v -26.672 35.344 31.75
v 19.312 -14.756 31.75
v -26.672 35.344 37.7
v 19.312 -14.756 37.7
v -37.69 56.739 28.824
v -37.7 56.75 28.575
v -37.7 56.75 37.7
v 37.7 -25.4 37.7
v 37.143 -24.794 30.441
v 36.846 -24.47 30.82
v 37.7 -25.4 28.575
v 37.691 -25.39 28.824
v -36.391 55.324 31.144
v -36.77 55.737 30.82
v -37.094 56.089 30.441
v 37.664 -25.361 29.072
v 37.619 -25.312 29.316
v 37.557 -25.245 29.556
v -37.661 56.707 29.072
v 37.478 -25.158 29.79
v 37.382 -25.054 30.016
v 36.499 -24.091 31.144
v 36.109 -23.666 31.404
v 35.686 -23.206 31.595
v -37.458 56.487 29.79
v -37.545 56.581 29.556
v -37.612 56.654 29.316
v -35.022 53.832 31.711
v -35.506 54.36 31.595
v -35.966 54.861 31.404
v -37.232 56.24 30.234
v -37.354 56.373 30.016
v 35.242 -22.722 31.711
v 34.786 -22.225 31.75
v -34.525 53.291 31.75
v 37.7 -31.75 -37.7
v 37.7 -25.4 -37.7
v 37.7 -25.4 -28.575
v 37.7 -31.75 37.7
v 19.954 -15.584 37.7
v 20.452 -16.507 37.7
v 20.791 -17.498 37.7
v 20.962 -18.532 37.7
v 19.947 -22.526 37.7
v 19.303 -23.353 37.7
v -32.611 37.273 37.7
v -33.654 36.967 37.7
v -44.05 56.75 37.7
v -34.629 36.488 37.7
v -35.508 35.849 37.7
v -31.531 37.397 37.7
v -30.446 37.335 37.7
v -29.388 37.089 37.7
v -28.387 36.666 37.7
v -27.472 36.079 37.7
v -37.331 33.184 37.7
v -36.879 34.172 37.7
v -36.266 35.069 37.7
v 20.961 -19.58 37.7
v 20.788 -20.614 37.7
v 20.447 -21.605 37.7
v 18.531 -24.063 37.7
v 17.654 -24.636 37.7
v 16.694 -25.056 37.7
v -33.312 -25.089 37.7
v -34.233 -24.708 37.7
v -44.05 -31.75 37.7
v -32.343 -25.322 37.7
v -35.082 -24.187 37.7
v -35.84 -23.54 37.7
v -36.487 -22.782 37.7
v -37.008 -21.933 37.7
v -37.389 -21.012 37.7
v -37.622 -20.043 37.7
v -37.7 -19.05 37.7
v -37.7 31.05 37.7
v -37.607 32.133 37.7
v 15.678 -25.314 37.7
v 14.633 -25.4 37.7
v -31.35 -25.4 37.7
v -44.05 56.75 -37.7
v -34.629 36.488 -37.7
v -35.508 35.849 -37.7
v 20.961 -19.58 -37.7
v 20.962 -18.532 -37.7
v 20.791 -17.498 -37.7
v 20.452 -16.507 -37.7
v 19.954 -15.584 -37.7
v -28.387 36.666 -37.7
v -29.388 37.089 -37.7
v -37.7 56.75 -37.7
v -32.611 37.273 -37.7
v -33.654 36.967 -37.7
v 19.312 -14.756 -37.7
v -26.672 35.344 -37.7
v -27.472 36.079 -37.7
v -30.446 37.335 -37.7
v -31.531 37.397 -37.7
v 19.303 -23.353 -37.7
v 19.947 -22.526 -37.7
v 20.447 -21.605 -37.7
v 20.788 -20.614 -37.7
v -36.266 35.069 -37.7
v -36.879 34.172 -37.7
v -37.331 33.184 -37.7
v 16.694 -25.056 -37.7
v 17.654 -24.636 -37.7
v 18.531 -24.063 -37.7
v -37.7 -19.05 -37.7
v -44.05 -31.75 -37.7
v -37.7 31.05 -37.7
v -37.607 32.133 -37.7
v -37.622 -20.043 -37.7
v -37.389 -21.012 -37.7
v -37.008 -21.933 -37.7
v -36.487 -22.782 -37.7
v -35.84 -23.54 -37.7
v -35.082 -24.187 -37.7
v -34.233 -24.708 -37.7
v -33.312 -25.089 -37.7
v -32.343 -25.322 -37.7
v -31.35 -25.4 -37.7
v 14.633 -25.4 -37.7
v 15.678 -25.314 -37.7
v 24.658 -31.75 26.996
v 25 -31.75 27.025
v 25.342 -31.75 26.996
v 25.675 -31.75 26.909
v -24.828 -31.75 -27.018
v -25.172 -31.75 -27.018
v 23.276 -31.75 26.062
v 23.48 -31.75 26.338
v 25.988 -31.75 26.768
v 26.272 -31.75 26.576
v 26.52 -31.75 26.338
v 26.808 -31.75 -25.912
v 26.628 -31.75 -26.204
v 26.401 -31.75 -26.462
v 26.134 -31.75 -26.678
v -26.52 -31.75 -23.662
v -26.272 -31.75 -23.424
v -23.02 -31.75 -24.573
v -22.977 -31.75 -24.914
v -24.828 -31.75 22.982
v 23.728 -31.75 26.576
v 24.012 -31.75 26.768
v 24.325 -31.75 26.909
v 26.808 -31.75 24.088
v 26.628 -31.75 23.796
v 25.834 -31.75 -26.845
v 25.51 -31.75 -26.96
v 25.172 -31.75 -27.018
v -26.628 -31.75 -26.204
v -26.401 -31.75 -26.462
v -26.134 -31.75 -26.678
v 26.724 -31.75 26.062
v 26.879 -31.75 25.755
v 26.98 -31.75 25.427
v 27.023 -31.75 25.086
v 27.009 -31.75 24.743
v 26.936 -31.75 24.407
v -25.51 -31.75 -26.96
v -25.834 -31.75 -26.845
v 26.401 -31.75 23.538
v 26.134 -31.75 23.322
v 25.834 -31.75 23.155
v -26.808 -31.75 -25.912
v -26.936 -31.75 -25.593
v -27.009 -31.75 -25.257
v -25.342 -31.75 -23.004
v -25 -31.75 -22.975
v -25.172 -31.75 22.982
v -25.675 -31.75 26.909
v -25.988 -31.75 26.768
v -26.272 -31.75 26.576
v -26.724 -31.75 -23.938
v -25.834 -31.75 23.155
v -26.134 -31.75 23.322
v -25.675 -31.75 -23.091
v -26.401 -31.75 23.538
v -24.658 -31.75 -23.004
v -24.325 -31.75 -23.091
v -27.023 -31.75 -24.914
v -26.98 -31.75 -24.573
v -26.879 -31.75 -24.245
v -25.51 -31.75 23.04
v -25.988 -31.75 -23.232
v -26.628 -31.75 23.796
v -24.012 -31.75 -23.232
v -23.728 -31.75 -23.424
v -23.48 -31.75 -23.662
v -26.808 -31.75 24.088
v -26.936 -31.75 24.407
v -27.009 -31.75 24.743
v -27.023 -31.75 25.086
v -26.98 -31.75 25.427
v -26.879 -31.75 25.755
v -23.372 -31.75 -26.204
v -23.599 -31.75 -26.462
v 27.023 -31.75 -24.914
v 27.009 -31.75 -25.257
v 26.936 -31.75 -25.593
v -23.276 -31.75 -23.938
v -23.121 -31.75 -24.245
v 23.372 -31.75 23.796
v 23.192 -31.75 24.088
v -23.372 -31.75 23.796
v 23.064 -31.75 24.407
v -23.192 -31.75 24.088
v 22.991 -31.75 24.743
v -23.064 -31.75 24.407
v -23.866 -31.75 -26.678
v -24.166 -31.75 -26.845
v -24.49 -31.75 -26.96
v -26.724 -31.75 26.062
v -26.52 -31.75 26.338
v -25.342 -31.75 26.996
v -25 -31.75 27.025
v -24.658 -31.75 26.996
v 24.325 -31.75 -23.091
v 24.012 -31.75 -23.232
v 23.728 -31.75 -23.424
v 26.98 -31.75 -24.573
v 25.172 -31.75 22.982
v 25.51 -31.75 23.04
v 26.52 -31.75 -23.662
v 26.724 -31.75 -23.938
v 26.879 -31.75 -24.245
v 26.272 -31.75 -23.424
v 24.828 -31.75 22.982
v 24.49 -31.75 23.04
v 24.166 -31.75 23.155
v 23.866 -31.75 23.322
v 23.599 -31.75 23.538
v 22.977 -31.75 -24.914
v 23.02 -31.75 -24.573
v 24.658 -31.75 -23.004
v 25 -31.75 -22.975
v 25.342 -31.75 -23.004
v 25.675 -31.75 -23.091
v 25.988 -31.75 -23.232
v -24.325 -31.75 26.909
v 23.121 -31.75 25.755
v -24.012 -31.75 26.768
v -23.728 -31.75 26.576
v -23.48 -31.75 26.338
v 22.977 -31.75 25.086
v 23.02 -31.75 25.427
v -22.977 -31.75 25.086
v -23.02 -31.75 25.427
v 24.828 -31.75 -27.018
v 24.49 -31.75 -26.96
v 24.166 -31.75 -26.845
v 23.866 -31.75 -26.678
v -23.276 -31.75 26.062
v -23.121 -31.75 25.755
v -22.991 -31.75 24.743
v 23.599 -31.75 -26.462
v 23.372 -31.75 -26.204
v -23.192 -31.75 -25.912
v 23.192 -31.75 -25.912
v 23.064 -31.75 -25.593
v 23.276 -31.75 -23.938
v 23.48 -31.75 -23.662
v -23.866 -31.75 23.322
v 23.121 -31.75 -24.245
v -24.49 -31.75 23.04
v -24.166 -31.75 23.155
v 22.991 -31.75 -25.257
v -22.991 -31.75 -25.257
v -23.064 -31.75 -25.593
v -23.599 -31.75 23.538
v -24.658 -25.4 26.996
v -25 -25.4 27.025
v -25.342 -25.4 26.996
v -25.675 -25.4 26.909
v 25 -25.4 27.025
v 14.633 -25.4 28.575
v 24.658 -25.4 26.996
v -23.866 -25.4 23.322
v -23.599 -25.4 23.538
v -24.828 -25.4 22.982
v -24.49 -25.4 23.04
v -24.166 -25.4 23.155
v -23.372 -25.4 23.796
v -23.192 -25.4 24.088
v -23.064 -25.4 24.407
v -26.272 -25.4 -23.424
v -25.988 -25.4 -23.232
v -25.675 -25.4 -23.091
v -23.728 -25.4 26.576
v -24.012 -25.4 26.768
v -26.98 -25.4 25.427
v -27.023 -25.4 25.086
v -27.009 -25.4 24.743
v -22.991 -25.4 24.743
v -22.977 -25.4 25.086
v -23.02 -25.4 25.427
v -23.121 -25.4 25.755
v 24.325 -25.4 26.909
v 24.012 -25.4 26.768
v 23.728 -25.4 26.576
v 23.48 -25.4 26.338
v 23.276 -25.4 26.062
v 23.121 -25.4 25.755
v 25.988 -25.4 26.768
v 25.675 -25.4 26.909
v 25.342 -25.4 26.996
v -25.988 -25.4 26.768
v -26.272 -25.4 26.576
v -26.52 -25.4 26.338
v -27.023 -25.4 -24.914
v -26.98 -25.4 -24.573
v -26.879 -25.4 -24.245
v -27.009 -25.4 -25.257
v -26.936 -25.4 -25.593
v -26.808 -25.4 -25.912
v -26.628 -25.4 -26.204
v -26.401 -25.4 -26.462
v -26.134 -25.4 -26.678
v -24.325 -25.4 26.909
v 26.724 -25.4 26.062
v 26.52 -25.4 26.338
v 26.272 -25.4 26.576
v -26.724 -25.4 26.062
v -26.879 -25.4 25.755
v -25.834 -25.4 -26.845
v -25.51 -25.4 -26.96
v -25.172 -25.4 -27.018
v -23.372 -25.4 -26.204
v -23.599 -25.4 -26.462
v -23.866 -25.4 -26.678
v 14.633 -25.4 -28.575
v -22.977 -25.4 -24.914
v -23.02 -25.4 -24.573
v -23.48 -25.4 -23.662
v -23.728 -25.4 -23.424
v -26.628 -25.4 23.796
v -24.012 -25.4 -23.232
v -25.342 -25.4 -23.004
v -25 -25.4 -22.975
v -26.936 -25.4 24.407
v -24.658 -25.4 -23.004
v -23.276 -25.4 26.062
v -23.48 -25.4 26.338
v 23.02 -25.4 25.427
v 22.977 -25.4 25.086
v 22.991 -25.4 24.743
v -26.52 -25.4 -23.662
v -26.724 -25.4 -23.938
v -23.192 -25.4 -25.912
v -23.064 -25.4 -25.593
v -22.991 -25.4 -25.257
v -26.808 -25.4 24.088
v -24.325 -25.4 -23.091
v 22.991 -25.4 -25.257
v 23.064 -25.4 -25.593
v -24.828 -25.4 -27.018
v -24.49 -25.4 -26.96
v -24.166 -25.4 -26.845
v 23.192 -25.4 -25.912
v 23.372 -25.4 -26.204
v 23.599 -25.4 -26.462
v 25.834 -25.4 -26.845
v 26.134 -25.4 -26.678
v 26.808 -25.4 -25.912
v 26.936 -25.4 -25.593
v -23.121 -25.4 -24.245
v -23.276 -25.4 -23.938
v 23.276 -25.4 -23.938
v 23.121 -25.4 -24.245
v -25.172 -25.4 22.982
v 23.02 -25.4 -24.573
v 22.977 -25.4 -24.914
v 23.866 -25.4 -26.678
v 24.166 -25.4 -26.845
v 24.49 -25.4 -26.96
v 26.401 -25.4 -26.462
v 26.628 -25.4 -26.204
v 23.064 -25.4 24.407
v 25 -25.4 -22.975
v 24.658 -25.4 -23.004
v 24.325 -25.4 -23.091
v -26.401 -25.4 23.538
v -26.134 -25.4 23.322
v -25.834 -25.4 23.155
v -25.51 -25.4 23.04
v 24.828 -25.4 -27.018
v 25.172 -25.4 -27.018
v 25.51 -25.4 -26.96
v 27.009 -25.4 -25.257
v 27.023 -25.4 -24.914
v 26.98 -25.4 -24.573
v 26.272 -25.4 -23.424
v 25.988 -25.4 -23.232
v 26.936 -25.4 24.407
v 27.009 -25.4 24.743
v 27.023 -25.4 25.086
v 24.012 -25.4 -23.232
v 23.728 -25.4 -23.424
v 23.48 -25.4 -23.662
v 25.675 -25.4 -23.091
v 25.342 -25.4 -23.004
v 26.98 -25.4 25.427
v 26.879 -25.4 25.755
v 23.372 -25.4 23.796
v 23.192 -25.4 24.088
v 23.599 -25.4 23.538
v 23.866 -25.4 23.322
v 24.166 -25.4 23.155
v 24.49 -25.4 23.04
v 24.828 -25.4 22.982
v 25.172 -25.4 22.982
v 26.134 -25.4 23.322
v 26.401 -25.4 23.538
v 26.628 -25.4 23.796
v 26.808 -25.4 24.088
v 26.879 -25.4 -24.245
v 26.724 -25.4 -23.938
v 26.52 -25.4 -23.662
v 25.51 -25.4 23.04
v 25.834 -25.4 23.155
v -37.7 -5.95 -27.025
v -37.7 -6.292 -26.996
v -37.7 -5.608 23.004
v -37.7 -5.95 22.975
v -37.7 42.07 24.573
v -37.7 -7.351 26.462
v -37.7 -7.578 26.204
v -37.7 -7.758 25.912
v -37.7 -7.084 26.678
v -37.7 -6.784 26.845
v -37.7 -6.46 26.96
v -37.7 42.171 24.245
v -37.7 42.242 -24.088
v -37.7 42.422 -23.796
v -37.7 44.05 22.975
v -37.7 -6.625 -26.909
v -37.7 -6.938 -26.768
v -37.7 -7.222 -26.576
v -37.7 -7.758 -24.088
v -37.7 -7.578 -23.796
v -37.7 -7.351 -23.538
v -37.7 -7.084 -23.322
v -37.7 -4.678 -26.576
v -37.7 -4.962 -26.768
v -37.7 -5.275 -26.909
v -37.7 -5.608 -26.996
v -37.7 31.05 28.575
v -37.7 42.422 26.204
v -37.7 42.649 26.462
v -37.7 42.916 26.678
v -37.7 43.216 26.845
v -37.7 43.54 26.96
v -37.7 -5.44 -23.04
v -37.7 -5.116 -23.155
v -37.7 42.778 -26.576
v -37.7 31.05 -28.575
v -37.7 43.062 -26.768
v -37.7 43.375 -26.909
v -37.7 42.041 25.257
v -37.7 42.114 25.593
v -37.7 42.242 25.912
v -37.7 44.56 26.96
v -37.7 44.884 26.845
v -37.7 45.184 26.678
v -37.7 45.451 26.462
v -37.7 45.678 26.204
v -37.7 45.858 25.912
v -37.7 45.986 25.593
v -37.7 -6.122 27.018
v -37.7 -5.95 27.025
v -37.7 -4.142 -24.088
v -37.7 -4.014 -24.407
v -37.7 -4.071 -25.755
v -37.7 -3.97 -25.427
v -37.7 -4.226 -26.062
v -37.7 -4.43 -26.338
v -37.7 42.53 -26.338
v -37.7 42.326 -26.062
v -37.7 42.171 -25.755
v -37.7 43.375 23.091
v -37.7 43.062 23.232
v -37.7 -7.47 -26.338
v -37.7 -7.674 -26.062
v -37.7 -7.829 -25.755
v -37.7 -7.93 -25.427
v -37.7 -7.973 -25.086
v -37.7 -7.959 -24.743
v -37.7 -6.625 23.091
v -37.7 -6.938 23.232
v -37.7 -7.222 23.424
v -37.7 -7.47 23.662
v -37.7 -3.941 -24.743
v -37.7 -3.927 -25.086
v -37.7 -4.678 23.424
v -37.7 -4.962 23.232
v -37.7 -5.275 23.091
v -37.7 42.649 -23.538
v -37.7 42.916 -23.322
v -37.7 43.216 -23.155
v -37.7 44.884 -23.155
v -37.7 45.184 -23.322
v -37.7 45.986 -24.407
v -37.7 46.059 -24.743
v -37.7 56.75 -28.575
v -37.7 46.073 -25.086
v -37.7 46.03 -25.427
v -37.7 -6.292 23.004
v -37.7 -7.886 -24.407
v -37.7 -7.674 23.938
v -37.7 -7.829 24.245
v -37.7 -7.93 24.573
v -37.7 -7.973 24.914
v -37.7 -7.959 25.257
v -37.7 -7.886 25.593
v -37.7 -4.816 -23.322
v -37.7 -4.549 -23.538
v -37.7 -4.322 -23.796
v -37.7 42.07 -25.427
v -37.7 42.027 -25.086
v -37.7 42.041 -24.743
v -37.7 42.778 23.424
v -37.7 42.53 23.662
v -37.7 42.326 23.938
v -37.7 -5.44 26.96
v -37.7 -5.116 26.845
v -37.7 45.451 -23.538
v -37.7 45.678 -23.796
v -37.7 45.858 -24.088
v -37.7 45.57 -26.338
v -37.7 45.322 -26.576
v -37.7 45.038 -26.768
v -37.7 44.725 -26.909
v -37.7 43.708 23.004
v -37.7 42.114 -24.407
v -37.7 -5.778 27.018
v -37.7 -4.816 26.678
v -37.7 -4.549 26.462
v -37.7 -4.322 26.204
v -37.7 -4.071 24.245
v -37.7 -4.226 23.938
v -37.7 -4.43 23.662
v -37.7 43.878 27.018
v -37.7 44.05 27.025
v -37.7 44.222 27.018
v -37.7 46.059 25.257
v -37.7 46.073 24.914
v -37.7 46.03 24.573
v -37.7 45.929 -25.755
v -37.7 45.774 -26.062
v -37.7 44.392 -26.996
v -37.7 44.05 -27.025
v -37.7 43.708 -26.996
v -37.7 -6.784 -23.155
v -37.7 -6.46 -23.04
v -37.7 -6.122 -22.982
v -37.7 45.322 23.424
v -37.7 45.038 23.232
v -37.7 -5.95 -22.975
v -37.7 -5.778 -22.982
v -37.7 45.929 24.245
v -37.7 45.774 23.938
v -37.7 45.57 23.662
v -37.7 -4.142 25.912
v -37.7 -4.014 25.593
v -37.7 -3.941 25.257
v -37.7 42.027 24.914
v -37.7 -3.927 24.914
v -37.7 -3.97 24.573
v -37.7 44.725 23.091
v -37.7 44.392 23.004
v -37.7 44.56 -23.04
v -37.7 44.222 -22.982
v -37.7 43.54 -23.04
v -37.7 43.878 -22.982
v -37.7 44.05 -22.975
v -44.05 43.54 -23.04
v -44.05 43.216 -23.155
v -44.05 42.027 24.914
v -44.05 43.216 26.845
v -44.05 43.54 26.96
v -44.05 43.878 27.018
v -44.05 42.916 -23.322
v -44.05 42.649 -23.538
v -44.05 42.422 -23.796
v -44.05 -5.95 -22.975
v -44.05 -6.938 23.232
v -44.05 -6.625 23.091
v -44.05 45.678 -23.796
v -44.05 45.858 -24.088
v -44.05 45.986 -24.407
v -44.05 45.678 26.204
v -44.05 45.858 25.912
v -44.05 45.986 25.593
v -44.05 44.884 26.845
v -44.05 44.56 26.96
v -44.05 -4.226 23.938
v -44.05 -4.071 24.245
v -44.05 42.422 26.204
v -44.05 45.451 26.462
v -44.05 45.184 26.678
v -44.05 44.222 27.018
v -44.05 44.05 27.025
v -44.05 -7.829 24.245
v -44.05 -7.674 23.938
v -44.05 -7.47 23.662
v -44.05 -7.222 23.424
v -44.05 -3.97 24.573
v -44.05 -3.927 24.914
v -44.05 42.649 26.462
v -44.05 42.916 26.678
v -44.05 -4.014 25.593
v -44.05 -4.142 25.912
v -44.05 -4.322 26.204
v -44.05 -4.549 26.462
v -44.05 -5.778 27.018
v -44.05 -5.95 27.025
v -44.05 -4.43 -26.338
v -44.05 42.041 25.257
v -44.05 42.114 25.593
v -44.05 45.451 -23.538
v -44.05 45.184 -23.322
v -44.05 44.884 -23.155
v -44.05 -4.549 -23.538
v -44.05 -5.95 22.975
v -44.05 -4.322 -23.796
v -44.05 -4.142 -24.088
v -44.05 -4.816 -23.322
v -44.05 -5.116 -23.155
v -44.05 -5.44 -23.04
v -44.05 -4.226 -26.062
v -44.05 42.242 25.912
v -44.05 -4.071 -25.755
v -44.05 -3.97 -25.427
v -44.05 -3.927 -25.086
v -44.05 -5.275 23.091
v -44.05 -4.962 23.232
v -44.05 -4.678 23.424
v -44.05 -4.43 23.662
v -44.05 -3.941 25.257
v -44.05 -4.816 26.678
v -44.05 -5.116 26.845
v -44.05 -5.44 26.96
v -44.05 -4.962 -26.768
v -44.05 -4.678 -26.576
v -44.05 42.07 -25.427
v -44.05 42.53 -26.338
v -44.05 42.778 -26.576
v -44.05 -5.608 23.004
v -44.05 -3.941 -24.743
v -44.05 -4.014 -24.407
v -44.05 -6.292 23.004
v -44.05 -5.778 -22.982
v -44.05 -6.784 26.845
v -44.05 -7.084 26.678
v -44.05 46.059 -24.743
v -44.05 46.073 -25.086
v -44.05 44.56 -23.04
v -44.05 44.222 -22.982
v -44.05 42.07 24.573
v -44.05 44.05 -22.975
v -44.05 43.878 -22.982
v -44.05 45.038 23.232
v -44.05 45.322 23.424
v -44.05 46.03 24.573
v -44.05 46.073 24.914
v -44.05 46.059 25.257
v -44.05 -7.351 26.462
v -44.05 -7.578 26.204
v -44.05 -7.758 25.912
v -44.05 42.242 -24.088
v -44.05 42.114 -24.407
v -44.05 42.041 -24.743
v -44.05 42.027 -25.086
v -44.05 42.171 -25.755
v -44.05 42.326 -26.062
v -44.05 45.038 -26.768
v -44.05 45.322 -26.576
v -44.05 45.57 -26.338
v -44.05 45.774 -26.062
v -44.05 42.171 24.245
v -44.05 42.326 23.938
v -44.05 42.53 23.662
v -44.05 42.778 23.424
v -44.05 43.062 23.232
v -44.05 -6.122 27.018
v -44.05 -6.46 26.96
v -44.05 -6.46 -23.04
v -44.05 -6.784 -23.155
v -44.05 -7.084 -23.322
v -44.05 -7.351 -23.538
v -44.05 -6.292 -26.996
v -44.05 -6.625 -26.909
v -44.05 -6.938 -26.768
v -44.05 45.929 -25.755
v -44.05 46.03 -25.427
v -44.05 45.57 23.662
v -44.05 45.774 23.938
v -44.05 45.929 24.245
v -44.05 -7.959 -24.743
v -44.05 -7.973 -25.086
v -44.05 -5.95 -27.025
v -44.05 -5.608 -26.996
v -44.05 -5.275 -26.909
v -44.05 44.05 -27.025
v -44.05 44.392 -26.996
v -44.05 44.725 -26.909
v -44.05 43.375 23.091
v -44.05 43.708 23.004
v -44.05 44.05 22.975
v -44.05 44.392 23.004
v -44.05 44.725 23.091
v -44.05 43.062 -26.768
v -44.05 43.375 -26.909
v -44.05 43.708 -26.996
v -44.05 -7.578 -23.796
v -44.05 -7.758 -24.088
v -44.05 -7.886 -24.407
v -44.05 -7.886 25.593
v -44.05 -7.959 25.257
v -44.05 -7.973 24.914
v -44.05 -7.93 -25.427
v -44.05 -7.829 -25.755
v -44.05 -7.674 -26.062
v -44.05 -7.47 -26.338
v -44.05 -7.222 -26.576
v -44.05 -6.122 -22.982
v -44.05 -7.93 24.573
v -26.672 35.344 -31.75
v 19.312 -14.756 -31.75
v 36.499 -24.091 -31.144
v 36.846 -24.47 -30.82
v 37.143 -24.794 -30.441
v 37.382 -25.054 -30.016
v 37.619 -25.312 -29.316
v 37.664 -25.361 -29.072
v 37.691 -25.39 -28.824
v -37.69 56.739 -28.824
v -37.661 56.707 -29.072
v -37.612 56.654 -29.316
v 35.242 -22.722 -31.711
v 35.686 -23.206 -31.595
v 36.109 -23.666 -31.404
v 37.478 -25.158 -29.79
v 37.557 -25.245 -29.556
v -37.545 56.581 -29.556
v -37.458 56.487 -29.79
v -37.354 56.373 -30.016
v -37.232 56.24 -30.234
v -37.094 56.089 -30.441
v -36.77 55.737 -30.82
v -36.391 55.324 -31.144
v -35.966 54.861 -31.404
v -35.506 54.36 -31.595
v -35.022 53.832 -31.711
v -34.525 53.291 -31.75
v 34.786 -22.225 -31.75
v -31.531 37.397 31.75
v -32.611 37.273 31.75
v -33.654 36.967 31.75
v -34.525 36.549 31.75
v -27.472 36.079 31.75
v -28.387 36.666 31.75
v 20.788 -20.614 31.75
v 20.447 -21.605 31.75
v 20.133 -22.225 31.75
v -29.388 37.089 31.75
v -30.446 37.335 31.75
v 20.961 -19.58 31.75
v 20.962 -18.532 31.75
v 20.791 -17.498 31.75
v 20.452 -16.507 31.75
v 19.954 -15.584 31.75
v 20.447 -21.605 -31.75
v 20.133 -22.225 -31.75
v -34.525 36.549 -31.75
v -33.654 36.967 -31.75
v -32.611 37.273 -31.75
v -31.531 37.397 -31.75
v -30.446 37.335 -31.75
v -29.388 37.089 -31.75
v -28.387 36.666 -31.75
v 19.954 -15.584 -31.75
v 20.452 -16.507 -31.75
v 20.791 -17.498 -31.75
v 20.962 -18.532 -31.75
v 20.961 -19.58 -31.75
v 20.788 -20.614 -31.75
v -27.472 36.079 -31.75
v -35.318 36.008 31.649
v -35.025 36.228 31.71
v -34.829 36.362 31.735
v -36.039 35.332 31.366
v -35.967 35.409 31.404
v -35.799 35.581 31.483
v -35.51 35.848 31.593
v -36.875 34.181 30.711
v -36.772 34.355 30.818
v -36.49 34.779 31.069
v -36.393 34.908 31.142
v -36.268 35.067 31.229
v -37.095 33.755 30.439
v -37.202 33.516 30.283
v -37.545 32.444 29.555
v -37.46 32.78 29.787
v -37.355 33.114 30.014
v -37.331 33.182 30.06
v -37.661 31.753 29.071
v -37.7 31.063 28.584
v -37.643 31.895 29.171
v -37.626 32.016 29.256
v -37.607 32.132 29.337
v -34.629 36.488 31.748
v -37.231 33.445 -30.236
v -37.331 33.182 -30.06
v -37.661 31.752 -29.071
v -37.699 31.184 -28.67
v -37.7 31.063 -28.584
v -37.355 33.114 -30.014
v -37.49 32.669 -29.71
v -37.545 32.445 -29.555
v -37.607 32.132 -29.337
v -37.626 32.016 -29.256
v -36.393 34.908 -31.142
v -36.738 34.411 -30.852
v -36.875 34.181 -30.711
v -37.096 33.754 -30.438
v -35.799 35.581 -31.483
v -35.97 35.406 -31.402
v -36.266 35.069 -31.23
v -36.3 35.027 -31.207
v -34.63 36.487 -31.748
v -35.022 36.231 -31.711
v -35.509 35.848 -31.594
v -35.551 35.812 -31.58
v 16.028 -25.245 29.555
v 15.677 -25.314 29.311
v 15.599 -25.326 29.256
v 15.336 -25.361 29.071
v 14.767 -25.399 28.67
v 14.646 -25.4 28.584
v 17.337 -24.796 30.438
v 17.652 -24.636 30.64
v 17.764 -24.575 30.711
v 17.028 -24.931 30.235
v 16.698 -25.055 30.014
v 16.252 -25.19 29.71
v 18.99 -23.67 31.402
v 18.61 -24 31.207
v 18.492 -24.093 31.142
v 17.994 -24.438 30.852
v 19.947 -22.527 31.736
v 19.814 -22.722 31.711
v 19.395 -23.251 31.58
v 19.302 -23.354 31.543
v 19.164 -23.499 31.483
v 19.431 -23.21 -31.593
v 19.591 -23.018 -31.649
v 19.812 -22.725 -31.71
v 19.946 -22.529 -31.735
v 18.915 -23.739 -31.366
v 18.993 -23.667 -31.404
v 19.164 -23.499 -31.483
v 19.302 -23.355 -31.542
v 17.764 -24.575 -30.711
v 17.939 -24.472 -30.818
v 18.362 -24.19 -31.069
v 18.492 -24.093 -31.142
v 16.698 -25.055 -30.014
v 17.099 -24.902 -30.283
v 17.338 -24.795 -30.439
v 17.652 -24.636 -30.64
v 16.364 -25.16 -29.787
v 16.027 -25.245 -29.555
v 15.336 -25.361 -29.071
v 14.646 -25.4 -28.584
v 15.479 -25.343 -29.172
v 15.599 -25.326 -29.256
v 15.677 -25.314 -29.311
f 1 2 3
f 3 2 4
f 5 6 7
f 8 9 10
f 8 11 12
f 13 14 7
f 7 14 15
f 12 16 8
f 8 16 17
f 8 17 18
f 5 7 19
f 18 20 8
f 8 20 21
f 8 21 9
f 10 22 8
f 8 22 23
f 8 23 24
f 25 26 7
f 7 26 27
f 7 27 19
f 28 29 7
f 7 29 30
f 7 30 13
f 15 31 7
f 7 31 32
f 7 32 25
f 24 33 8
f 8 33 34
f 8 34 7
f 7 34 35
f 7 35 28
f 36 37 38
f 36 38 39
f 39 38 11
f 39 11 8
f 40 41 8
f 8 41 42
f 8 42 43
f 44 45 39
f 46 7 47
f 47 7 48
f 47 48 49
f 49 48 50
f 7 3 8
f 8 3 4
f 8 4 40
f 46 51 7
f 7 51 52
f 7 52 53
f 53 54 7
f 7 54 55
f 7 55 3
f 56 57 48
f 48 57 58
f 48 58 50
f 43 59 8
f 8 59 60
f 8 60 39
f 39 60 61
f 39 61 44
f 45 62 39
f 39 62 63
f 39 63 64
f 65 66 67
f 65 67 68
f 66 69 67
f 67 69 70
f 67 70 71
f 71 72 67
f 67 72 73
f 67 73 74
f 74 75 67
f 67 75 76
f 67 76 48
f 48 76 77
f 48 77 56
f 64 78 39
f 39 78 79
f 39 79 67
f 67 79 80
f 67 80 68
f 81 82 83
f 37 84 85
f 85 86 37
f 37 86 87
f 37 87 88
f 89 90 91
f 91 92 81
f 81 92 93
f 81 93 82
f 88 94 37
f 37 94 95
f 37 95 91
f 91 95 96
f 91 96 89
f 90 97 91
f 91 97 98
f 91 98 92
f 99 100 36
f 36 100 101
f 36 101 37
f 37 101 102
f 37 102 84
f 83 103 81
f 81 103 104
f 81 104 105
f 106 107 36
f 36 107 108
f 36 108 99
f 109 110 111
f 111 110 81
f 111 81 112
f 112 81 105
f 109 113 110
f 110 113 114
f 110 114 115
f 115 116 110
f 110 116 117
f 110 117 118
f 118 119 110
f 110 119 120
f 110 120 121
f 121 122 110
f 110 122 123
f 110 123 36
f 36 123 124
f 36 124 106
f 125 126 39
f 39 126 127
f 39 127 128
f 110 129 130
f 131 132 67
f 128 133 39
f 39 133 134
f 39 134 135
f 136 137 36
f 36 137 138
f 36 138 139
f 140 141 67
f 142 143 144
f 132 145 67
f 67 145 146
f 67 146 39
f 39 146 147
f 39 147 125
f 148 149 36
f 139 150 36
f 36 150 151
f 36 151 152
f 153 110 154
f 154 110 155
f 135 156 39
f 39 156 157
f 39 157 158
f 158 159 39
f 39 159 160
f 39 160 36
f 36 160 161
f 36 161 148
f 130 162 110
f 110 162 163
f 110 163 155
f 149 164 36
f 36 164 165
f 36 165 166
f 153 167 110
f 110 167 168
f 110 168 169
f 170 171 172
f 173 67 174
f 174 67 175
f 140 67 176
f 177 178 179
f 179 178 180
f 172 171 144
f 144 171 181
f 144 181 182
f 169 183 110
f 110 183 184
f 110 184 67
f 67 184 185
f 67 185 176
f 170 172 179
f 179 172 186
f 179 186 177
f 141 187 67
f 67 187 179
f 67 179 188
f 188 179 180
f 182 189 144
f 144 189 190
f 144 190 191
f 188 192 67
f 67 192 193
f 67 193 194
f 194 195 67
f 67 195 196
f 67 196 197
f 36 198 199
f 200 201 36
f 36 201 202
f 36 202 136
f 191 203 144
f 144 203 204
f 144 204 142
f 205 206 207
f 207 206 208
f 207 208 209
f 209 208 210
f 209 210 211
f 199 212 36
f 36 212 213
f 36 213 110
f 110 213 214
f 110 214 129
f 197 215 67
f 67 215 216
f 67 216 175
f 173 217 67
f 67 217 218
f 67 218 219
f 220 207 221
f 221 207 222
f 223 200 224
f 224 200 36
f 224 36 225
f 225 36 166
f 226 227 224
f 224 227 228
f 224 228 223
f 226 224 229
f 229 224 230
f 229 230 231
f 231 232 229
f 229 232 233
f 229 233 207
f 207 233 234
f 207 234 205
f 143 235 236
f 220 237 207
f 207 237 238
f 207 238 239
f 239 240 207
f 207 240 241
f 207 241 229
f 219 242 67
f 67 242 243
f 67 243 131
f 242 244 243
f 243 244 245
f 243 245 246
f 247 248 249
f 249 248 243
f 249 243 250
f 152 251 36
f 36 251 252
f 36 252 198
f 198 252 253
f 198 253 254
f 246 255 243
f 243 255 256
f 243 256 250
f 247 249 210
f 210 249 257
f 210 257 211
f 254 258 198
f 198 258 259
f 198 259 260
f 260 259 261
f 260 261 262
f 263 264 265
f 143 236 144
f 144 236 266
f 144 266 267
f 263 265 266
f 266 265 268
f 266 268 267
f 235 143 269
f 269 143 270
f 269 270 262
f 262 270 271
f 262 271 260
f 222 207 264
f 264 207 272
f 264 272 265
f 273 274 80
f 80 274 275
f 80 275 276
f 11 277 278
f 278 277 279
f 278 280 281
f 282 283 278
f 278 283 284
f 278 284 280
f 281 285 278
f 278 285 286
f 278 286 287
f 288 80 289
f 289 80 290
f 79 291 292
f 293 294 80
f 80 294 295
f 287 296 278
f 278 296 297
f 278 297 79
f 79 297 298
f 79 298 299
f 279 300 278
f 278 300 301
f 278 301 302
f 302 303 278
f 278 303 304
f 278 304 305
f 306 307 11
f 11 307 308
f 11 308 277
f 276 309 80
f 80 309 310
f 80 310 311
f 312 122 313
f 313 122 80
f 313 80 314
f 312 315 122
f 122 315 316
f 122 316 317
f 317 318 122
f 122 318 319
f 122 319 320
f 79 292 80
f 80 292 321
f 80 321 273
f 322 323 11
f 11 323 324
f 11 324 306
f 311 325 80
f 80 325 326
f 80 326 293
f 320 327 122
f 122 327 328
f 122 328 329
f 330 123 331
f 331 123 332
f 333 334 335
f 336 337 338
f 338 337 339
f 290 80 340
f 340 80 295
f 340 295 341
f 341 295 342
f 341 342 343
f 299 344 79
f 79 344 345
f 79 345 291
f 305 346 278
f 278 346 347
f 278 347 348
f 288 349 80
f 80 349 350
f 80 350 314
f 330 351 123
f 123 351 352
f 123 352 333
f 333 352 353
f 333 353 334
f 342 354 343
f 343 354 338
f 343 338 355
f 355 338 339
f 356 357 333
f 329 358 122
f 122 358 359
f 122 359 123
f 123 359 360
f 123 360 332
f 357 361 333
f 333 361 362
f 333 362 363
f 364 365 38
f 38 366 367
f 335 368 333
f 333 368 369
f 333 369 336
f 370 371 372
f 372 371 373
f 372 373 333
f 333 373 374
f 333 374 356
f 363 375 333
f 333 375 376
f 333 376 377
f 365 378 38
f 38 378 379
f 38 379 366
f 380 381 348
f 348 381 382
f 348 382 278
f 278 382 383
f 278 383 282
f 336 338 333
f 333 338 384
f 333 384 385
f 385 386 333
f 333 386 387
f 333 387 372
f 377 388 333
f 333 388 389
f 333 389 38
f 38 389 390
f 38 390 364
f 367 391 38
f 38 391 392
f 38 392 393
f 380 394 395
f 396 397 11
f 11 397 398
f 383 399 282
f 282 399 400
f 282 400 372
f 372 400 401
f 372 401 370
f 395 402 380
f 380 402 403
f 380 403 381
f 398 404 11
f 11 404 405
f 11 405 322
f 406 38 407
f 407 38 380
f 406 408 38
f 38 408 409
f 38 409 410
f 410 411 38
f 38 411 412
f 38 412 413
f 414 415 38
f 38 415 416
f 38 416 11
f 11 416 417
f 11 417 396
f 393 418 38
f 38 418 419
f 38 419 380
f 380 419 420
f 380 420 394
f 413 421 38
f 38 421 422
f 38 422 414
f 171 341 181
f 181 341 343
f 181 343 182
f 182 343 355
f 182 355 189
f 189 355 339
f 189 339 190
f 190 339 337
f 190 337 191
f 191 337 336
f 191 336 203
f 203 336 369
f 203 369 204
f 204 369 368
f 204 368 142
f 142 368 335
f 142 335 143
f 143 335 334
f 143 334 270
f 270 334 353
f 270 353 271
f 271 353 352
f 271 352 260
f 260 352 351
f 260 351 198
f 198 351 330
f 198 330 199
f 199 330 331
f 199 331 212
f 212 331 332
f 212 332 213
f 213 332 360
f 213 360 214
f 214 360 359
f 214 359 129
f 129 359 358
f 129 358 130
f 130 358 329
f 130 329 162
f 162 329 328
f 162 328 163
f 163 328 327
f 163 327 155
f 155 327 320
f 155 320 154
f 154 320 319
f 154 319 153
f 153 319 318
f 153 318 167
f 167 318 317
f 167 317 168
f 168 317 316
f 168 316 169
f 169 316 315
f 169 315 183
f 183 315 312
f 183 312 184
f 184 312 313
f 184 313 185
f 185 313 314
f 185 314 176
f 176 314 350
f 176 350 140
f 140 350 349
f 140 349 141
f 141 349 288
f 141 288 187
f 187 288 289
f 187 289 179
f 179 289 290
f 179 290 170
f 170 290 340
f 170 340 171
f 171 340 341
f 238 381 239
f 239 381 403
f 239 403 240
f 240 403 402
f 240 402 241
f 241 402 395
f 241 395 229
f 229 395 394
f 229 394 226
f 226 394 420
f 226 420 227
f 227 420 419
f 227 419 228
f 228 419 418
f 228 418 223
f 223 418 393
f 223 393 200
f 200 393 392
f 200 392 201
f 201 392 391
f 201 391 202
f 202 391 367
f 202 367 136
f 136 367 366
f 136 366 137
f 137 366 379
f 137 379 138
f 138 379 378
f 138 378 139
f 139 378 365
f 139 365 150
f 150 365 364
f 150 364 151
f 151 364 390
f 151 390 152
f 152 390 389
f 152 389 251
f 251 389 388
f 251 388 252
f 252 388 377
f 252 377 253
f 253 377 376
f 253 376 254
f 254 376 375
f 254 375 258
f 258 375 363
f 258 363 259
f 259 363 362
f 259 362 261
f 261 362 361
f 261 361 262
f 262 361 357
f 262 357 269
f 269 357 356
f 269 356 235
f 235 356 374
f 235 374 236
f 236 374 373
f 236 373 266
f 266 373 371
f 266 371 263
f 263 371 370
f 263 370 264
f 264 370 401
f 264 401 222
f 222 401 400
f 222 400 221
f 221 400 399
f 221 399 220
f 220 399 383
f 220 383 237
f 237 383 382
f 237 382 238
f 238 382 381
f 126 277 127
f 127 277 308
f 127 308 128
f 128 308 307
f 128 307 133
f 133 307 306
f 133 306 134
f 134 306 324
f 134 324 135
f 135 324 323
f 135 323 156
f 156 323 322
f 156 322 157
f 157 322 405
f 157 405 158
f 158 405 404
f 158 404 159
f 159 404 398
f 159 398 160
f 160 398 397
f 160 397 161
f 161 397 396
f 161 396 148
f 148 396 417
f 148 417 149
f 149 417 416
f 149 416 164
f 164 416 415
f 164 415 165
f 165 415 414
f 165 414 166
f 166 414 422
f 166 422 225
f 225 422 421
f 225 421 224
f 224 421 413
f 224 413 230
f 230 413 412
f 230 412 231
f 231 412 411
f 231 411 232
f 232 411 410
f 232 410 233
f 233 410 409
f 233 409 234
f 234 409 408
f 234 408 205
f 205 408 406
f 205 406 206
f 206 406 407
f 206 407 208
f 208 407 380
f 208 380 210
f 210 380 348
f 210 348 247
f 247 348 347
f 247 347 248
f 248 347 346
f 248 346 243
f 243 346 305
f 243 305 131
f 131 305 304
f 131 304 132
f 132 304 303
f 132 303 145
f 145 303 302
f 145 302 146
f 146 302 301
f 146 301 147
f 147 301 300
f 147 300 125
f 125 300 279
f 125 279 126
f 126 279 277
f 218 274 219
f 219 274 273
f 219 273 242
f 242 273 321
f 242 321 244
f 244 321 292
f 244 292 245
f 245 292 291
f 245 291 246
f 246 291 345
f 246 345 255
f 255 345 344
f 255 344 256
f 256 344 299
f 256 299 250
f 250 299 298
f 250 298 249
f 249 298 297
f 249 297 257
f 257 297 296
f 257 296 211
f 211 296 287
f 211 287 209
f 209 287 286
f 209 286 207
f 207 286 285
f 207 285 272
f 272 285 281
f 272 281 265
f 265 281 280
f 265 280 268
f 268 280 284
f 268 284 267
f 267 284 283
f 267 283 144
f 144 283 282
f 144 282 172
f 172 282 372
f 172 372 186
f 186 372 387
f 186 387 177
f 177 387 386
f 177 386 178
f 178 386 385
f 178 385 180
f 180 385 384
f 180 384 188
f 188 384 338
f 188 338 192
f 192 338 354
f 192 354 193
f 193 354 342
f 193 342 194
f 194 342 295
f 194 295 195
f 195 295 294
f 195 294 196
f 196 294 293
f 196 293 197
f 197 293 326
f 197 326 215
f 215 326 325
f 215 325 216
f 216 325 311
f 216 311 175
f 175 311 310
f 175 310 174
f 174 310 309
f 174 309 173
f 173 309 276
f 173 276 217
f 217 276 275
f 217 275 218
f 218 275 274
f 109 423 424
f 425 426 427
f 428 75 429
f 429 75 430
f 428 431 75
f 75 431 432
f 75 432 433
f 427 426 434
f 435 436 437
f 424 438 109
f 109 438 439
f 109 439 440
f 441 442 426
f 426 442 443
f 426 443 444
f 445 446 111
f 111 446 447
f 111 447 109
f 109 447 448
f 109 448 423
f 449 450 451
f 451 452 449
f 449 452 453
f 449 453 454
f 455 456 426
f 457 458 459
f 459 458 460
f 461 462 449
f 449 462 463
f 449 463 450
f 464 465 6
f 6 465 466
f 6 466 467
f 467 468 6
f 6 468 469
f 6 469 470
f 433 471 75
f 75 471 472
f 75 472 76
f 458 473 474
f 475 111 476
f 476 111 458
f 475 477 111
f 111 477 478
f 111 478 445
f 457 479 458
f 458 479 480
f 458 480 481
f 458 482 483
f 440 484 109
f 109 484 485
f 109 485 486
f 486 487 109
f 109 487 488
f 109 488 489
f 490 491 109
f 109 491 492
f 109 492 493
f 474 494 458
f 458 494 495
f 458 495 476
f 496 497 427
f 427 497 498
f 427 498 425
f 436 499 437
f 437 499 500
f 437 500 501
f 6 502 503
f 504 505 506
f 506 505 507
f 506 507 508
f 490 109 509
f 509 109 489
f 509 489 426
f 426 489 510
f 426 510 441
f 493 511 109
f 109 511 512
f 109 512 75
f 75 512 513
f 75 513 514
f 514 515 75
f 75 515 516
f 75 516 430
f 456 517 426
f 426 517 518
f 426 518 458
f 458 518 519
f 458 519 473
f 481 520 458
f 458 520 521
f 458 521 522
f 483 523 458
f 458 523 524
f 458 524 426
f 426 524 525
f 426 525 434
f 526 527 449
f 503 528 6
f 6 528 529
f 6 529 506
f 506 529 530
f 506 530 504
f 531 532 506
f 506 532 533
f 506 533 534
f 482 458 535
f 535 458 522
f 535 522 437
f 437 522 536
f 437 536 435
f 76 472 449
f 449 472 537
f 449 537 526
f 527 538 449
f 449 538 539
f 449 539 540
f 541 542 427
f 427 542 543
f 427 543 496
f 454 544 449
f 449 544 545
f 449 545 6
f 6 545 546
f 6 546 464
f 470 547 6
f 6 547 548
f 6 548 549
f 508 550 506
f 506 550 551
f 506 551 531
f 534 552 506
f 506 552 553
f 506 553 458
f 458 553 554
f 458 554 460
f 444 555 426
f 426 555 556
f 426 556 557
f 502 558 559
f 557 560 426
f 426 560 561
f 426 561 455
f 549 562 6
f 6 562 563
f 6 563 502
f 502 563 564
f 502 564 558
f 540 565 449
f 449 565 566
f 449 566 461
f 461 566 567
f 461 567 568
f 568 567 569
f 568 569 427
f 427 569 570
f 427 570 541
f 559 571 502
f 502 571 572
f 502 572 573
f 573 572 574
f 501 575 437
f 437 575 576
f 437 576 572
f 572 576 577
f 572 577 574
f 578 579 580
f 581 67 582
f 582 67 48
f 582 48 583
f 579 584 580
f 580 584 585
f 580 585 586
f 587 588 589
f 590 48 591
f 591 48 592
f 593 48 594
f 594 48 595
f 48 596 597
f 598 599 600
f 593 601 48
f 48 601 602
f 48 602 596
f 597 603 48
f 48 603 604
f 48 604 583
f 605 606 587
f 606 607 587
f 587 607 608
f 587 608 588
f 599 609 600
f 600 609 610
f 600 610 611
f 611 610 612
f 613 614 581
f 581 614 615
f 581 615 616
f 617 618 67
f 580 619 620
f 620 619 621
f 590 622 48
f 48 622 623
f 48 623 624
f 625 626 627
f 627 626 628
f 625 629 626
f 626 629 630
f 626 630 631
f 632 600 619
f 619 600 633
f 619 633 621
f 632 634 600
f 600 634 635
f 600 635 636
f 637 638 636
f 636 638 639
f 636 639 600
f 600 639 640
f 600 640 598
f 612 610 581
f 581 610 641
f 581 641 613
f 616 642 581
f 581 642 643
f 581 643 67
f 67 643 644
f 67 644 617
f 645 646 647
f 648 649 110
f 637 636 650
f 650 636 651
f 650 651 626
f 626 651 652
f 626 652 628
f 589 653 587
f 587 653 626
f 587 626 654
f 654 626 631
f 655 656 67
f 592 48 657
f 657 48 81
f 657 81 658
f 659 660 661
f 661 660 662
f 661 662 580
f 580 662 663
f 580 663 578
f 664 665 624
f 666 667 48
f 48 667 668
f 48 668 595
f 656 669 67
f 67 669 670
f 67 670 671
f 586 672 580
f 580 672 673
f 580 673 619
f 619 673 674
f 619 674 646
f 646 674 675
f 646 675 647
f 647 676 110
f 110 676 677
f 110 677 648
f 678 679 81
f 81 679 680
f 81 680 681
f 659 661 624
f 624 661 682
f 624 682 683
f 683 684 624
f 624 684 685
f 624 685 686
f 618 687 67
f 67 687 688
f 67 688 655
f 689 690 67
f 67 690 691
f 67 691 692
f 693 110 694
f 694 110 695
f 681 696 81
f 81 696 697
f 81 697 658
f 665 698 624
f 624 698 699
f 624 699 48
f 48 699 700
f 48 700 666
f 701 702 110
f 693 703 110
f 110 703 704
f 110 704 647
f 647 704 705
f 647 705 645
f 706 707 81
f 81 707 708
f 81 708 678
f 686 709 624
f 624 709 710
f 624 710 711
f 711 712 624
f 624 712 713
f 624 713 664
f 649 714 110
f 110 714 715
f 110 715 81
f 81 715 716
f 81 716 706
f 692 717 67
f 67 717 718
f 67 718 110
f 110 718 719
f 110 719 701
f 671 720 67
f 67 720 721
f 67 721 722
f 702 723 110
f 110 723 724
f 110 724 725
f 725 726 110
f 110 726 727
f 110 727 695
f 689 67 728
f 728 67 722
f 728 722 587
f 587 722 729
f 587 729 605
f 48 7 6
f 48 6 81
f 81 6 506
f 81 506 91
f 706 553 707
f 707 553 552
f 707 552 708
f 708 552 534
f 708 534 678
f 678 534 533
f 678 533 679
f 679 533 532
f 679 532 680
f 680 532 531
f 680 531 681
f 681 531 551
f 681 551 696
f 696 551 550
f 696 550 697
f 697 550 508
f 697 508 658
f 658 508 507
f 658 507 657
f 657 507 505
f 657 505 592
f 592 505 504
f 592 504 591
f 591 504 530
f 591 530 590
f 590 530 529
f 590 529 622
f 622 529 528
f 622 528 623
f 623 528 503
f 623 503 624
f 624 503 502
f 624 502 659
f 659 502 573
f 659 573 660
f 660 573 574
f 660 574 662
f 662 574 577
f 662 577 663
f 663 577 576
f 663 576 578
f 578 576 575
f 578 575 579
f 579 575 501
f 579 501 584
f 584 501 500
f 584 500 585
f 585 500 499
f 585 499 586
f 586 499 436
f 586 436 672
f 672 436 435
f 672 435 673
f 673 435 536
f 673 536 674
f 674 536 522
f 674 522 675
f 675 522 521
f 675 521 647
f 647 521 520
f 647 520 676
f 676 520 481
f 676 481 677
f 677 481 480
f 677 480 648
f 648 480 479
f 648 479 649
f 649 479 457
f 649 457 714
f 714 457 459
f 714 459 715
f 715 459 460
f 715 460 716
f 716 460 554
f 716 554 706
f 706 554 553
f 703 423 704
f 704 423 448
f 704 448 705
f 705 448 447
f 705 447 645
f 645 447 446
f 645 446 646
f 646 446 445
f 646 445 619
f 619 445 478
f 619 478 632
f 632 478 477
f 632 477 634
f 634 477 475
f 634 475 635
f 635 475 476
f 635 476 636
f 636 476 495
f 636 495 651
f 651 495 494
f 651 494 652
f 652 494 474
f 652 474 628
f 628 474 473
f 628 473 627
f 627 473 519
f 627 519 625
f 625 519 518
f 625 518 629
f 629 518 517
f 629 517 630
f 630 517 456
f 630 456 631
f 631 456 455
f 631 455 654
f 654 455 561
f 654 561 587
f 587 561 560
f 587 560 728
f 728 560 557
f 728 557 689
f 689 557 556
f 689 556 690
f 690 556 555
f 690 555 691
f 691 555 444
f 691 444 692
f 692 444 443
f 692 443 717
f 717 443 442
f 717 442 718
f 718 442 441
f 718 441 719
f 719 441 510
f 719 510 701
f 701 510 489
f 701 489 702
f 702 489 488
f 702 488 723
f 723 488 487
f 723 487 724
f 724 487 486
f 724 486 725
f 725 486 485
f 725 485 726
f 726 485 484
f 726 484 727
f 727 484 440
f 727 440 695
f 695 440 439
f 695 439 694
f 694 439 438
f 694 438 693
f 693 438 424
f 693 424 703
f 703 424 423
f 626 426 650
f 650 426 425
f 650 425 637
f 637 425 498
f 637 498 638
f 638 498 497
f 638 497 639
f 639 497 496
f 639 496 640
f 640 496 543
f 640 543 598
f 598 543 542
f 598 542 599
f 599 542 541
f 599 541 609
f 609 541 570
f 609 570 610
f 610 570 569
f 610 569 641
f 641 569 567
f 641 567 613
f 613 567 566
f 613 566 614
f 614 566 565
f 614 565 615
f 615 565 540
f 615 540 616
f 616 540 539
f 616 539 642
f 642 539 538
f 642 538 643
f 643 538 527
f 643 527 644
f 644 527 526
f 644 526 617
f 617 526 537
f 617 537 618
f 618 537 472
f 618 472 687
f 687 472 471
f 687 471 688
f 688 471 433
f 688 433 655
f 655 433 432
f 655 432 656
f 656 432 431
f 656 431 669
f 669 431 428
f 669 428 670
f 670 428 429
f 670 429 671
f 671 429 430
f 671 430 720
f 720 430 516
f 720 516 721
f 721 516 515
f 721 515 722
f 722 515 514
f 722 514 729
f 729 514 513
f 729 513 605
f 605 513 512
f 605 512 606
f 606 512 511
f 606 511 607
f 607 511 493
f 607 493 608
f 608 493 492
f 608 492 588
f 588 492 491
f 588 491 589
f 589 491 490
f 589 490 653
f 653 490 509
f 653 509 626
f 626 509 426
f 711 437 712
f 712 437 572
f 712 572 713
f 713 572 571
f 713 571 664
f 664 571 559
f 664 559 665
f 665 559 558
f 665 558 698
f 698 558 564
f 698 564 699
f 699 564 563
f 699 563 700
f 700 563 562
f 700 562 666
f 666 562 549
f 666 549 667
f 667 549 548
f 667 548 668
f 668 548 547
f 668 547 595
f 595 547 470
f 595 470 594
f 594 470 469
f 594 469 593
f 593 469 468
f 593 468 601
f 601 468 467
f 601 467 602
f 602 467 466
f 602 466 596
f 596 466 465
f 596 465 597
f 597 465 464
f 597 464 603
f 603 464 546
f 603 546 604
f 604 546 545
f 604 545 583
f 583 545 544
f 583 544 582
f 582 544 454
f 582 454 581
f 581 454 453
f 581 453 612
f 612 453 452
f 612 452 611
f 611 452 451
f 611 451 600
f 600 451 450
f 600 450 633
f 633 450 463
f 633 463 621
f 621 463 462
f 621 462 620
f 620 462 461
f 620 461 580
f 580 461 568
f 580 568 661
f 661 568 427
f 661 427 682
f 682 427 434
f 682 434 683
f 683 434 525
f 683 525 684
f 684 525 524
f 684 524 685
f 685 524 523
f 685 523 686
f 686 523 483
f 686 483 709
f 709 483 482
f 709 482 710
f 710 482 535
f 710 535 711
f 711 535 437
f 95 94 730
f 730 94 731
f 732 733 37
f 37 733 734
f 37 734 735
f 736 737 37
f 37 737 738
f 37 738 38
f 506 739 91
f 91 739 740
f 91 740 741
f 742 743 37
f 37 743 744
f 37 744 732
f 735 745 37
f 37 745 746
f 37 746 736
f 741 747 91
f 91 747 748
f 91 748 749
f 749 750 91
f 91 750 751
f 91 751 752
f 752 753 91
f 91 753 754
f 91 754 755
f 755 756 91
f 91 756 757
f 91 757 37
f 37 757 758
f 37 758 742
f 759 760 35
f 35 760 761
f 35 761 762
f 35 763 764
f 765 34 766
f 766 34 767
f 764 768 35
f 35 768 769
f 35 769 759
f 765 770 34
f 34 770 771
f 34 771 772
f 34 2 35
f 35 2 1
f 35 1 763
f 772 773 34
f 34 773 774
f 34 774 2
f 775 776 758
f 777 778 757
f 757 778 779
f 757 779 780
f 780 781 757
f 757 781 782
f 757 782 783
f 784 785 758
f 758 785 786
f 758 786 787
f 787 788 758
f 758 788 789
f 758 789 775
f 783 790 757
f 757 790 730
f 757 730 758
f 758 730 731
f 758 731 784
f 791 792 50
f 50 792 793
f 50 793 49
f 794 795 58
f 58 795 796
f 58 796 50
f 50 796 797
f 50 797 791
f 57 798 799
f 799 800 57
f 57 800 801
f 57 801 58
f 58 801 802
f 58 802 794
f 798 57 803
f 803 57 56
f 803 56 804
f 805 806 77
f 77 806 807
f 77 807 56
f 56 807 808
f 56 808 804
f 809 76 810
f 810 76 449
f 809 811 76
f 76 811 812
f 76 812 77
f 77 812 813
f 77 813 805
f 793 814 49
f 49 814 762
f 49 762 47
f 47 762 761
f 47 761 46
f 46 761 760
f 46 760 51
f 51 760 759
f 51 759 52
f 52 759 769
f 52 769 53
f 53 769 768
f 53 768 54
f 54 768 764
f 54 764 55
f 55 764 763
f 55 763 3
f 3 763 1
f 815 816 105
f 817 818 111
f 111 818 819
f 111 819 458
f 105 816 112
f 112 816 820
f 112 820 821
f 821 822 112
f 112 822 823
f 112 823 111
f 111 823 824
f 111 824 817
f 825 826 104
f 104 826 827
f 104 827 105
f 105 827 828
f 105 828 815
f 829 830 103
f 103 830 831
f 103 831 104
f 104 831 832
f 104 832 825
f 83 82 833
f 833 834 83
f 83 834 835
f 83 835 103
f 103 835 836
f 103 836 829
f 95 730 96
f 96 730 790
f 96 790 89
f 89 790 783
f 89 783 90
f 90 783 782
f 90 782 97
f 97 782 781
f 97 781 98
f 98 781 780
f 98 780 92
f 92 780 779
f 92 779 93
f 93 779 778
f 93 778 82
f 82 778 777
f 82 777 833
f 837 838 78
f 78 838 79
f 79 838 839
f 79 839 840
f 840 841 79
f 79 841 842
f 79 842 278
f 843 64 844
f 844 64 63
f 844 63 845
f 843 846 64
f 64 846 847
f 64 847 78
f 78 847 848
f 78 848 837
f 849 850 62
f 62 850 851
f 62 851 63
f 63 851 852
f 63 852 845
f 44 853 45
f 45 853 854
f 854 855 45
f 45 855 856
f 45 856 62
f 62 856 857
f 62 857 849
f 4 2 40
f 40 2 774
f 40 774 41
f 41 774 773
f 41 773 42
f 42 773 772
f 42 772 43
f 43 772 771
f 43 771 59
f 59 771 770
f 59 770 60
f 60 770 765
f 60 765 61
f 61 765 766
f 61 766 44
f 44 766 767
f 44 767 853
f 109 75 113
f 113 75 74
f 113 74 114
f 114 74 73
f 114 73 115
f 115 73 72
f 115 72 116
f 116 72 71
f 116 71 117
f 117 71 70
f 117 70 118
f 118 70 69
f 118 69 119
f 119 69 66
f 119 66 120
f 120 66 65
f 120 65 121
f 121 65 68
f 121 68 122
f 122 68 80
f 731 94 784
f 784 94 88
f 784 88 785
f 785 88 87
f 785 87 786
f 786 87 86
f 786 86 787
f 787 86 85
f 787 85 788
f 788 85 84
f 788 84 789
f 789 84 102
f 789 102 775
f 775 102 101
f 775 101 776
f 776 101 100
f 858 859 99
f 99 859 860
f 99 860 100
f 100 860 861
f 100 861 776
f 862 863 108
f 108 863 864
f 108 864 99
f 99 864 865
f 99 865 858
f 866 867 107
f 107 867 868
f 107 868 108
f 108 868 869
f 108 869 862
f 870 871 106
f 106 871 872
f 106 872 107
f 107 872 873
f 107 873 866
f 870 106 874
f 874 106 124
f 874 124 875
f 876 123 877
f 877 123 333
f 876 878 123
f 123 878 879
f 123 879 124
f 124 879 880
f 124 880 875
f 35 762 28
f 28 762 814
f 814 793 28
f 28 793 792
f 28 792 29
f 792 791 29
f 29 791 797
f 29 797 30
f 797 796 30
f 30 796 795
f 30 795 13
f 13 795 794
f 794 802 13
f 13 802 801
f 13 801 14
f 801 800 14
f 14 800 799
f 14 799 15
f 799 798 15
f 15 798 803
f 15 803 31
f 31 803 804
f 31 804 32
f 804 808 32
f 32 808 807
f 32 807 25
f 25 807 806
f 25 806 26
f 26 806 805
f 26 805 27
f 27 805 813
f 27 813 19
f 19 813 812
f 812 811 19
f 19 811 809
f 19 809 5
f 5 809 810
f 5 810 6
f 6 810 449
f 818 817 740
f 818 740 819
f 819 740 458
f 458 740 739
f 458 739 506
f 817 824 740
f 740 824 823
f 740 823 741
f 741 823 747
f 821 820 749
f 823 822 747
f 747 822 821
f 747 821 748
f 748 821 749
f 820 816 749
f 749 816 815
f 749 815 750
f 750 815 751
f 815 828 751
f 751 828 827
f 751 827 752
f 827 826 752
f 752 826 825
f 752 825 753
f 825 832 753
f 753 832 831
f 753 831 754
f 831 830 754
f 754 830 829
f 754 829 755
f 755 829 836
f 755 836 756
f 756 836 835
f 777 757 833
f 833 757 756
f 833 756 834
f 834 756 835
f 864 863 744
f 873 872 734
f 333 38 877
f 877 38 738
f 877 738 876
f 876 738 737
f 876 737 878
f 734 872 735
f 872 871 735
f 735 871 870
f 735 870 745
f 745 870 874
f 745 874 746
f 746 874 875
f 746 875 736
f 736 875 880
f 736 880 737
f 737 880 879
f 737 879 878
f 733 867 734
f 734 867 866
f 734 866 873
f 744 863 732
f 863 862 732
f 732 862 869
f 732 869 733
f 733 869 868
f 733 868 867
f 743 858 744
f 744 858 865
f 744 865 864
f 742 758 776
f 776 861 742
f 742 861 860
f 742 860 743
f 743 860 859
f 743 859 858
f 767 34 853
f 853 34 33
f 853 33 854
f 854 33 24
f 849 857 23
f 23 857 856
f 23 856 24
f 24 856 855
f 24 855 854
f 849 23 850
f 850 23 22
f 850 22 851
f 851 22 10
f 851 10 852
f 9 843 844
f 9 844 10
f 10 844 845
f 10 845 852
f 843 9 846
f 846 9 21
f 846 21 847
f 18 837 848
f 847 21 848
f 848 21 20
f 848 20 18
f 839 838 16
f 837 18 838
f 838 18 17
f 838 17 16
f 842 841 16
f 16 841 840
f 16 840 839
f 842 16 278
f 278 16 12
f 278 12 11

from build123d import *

# Parameters (mm, degrees)
BOSS_EXTRUDE1_START = -25.4
SKETCH1_W           = 75.4
SKETCH1_H           = 75.4
SKETCH1_R           = 2.025
BOSS_EXTRUDE1_DEPTH = 6.35
SKETCH2_W           = 75.4
SKETCH2_H           = 88.5
SKETCH2_R           = 2.025
BOSS_EXTRUDE2_DEPTH = 6.35
BOSS_EXTRUDE3_START = -37.7
BOSS_EXTRUDE3_DEPTH = 75.4
CUT_EXTRUDE1_DEPTH  = 31.75
FILLET3_R           = 6.35
FILLET4_R           = 3.175


with BuildPart() as part:
    # Sketch1 → Boss-Extrude1 (new body)
    with BuildSketch(Plane(origin=(0, 0, 0), x_dir=(1, 0, 0), z_dir=(0, 1, 0)).offset(BOSS_EXTRUDE1_START)):
        Rectangle(SKETCH1_W, SKETCH1_H)
        with Locations((-25, 25)):
            Circle(SKETCH1_R, mode=Mode.SUBTRACT)
        with Locations((25, 25)):
            Circle(SKETCH1_R, mode=Mode.SUBTRACT)
        with Locations((25, -25)):
            Circle(SKETCH1_R, mode=Mode.SUBTRACT)
        with Locations((-25, -25)):
            Circle(SKETCH1_R, mode=Mode.SUBTRACT)
    extrude(amount=-BOSS_EXTRUDE1_DEPTH)

    # Sketch2 → Boss-Extrude2 (add)
    with BuildSketch(Plane.ZY.offset(37.7)):
        with Locations((0, 12.5)):
            Rectangle(SKETCH2_W, SKETCH2_H)
        with Locations((-25, 44.05)):
            Circle(SKETCH2_R, mode=Mode.SUBTRACT)
        with Locations((-25, -5.95)):
            Circle(SKETCH2_R, mode=Mode.SUBTRACT)
        with Locations((25, -5.95)):
            Circle(SKETCH2_R, mode=Mode.SUBTRACT)
        with Locations((25, 44.05)):
            Circle(SKETCH2_R, mode=Mode.SUBTRACT)
    extrude(amount=BOSS_EXTRUDE2_DEPTH)

    # Sketch3 → Boss-Extrude3 (add)
    with BuildSketch(Plane(origin=(0, 0, 0), x_dir=(-1, 0, 0), z_dir=(0, 0, -1)).offset(BOSS_EXTRUDE3_START)):
        Polygon((-37.7, -25.4), (37.7, 56.75), (37.7, 47.359169269), (-29.08078348, -25.4), align=None)
    extrude(amount=BOSS_EXTRUDE3_DEPTH)

    # Sketch3<2> → Cut-Extrude1 (cut, symmetric)
    with BuildSketch(Plane(origin=(0, 0, 0), x_dir=(-1, 0, 0), z_dir=(0, 0, -1))):
        Polygon((-37.7, -25.4), (37.7, 56.75), (37.7, 47.359169269), (-29.08078348, -25.4), align=None)
    extrude(amount=CUT_EXTRUDE1_DEPTH, both=True, mode=Mode.SUBTRACT)

    # Fillet3
    fillet3_edges = [part.edges().sort_by_distance(p)[0] for p in [
        (-37.7, 47.359169269, -34.725),
        (-37.7, -25.4, 0),
        (29.08078348, -25.4, -34.725),
        (-37.7, 47.359169269, 34.725),
        (29.08078348, -25.4, 34.725),
    ]]
    fillet(fillet3_edges, radius=FILLET3_R)

    # Fillet4
    fillet4_edges = [part.edges().sort_by_distance(p)[0] for p in [
        (21.857054709, -25.4, 31.75),
        (-37.7, 39.204519819, 31.75),
        (21.857054709, -25.4, -31.75),
        (-37.7, 39.204519819, -31.75),
    ]]
    fillet(fillet4_edges, radius=FILLET4_R)


solid = part.part
